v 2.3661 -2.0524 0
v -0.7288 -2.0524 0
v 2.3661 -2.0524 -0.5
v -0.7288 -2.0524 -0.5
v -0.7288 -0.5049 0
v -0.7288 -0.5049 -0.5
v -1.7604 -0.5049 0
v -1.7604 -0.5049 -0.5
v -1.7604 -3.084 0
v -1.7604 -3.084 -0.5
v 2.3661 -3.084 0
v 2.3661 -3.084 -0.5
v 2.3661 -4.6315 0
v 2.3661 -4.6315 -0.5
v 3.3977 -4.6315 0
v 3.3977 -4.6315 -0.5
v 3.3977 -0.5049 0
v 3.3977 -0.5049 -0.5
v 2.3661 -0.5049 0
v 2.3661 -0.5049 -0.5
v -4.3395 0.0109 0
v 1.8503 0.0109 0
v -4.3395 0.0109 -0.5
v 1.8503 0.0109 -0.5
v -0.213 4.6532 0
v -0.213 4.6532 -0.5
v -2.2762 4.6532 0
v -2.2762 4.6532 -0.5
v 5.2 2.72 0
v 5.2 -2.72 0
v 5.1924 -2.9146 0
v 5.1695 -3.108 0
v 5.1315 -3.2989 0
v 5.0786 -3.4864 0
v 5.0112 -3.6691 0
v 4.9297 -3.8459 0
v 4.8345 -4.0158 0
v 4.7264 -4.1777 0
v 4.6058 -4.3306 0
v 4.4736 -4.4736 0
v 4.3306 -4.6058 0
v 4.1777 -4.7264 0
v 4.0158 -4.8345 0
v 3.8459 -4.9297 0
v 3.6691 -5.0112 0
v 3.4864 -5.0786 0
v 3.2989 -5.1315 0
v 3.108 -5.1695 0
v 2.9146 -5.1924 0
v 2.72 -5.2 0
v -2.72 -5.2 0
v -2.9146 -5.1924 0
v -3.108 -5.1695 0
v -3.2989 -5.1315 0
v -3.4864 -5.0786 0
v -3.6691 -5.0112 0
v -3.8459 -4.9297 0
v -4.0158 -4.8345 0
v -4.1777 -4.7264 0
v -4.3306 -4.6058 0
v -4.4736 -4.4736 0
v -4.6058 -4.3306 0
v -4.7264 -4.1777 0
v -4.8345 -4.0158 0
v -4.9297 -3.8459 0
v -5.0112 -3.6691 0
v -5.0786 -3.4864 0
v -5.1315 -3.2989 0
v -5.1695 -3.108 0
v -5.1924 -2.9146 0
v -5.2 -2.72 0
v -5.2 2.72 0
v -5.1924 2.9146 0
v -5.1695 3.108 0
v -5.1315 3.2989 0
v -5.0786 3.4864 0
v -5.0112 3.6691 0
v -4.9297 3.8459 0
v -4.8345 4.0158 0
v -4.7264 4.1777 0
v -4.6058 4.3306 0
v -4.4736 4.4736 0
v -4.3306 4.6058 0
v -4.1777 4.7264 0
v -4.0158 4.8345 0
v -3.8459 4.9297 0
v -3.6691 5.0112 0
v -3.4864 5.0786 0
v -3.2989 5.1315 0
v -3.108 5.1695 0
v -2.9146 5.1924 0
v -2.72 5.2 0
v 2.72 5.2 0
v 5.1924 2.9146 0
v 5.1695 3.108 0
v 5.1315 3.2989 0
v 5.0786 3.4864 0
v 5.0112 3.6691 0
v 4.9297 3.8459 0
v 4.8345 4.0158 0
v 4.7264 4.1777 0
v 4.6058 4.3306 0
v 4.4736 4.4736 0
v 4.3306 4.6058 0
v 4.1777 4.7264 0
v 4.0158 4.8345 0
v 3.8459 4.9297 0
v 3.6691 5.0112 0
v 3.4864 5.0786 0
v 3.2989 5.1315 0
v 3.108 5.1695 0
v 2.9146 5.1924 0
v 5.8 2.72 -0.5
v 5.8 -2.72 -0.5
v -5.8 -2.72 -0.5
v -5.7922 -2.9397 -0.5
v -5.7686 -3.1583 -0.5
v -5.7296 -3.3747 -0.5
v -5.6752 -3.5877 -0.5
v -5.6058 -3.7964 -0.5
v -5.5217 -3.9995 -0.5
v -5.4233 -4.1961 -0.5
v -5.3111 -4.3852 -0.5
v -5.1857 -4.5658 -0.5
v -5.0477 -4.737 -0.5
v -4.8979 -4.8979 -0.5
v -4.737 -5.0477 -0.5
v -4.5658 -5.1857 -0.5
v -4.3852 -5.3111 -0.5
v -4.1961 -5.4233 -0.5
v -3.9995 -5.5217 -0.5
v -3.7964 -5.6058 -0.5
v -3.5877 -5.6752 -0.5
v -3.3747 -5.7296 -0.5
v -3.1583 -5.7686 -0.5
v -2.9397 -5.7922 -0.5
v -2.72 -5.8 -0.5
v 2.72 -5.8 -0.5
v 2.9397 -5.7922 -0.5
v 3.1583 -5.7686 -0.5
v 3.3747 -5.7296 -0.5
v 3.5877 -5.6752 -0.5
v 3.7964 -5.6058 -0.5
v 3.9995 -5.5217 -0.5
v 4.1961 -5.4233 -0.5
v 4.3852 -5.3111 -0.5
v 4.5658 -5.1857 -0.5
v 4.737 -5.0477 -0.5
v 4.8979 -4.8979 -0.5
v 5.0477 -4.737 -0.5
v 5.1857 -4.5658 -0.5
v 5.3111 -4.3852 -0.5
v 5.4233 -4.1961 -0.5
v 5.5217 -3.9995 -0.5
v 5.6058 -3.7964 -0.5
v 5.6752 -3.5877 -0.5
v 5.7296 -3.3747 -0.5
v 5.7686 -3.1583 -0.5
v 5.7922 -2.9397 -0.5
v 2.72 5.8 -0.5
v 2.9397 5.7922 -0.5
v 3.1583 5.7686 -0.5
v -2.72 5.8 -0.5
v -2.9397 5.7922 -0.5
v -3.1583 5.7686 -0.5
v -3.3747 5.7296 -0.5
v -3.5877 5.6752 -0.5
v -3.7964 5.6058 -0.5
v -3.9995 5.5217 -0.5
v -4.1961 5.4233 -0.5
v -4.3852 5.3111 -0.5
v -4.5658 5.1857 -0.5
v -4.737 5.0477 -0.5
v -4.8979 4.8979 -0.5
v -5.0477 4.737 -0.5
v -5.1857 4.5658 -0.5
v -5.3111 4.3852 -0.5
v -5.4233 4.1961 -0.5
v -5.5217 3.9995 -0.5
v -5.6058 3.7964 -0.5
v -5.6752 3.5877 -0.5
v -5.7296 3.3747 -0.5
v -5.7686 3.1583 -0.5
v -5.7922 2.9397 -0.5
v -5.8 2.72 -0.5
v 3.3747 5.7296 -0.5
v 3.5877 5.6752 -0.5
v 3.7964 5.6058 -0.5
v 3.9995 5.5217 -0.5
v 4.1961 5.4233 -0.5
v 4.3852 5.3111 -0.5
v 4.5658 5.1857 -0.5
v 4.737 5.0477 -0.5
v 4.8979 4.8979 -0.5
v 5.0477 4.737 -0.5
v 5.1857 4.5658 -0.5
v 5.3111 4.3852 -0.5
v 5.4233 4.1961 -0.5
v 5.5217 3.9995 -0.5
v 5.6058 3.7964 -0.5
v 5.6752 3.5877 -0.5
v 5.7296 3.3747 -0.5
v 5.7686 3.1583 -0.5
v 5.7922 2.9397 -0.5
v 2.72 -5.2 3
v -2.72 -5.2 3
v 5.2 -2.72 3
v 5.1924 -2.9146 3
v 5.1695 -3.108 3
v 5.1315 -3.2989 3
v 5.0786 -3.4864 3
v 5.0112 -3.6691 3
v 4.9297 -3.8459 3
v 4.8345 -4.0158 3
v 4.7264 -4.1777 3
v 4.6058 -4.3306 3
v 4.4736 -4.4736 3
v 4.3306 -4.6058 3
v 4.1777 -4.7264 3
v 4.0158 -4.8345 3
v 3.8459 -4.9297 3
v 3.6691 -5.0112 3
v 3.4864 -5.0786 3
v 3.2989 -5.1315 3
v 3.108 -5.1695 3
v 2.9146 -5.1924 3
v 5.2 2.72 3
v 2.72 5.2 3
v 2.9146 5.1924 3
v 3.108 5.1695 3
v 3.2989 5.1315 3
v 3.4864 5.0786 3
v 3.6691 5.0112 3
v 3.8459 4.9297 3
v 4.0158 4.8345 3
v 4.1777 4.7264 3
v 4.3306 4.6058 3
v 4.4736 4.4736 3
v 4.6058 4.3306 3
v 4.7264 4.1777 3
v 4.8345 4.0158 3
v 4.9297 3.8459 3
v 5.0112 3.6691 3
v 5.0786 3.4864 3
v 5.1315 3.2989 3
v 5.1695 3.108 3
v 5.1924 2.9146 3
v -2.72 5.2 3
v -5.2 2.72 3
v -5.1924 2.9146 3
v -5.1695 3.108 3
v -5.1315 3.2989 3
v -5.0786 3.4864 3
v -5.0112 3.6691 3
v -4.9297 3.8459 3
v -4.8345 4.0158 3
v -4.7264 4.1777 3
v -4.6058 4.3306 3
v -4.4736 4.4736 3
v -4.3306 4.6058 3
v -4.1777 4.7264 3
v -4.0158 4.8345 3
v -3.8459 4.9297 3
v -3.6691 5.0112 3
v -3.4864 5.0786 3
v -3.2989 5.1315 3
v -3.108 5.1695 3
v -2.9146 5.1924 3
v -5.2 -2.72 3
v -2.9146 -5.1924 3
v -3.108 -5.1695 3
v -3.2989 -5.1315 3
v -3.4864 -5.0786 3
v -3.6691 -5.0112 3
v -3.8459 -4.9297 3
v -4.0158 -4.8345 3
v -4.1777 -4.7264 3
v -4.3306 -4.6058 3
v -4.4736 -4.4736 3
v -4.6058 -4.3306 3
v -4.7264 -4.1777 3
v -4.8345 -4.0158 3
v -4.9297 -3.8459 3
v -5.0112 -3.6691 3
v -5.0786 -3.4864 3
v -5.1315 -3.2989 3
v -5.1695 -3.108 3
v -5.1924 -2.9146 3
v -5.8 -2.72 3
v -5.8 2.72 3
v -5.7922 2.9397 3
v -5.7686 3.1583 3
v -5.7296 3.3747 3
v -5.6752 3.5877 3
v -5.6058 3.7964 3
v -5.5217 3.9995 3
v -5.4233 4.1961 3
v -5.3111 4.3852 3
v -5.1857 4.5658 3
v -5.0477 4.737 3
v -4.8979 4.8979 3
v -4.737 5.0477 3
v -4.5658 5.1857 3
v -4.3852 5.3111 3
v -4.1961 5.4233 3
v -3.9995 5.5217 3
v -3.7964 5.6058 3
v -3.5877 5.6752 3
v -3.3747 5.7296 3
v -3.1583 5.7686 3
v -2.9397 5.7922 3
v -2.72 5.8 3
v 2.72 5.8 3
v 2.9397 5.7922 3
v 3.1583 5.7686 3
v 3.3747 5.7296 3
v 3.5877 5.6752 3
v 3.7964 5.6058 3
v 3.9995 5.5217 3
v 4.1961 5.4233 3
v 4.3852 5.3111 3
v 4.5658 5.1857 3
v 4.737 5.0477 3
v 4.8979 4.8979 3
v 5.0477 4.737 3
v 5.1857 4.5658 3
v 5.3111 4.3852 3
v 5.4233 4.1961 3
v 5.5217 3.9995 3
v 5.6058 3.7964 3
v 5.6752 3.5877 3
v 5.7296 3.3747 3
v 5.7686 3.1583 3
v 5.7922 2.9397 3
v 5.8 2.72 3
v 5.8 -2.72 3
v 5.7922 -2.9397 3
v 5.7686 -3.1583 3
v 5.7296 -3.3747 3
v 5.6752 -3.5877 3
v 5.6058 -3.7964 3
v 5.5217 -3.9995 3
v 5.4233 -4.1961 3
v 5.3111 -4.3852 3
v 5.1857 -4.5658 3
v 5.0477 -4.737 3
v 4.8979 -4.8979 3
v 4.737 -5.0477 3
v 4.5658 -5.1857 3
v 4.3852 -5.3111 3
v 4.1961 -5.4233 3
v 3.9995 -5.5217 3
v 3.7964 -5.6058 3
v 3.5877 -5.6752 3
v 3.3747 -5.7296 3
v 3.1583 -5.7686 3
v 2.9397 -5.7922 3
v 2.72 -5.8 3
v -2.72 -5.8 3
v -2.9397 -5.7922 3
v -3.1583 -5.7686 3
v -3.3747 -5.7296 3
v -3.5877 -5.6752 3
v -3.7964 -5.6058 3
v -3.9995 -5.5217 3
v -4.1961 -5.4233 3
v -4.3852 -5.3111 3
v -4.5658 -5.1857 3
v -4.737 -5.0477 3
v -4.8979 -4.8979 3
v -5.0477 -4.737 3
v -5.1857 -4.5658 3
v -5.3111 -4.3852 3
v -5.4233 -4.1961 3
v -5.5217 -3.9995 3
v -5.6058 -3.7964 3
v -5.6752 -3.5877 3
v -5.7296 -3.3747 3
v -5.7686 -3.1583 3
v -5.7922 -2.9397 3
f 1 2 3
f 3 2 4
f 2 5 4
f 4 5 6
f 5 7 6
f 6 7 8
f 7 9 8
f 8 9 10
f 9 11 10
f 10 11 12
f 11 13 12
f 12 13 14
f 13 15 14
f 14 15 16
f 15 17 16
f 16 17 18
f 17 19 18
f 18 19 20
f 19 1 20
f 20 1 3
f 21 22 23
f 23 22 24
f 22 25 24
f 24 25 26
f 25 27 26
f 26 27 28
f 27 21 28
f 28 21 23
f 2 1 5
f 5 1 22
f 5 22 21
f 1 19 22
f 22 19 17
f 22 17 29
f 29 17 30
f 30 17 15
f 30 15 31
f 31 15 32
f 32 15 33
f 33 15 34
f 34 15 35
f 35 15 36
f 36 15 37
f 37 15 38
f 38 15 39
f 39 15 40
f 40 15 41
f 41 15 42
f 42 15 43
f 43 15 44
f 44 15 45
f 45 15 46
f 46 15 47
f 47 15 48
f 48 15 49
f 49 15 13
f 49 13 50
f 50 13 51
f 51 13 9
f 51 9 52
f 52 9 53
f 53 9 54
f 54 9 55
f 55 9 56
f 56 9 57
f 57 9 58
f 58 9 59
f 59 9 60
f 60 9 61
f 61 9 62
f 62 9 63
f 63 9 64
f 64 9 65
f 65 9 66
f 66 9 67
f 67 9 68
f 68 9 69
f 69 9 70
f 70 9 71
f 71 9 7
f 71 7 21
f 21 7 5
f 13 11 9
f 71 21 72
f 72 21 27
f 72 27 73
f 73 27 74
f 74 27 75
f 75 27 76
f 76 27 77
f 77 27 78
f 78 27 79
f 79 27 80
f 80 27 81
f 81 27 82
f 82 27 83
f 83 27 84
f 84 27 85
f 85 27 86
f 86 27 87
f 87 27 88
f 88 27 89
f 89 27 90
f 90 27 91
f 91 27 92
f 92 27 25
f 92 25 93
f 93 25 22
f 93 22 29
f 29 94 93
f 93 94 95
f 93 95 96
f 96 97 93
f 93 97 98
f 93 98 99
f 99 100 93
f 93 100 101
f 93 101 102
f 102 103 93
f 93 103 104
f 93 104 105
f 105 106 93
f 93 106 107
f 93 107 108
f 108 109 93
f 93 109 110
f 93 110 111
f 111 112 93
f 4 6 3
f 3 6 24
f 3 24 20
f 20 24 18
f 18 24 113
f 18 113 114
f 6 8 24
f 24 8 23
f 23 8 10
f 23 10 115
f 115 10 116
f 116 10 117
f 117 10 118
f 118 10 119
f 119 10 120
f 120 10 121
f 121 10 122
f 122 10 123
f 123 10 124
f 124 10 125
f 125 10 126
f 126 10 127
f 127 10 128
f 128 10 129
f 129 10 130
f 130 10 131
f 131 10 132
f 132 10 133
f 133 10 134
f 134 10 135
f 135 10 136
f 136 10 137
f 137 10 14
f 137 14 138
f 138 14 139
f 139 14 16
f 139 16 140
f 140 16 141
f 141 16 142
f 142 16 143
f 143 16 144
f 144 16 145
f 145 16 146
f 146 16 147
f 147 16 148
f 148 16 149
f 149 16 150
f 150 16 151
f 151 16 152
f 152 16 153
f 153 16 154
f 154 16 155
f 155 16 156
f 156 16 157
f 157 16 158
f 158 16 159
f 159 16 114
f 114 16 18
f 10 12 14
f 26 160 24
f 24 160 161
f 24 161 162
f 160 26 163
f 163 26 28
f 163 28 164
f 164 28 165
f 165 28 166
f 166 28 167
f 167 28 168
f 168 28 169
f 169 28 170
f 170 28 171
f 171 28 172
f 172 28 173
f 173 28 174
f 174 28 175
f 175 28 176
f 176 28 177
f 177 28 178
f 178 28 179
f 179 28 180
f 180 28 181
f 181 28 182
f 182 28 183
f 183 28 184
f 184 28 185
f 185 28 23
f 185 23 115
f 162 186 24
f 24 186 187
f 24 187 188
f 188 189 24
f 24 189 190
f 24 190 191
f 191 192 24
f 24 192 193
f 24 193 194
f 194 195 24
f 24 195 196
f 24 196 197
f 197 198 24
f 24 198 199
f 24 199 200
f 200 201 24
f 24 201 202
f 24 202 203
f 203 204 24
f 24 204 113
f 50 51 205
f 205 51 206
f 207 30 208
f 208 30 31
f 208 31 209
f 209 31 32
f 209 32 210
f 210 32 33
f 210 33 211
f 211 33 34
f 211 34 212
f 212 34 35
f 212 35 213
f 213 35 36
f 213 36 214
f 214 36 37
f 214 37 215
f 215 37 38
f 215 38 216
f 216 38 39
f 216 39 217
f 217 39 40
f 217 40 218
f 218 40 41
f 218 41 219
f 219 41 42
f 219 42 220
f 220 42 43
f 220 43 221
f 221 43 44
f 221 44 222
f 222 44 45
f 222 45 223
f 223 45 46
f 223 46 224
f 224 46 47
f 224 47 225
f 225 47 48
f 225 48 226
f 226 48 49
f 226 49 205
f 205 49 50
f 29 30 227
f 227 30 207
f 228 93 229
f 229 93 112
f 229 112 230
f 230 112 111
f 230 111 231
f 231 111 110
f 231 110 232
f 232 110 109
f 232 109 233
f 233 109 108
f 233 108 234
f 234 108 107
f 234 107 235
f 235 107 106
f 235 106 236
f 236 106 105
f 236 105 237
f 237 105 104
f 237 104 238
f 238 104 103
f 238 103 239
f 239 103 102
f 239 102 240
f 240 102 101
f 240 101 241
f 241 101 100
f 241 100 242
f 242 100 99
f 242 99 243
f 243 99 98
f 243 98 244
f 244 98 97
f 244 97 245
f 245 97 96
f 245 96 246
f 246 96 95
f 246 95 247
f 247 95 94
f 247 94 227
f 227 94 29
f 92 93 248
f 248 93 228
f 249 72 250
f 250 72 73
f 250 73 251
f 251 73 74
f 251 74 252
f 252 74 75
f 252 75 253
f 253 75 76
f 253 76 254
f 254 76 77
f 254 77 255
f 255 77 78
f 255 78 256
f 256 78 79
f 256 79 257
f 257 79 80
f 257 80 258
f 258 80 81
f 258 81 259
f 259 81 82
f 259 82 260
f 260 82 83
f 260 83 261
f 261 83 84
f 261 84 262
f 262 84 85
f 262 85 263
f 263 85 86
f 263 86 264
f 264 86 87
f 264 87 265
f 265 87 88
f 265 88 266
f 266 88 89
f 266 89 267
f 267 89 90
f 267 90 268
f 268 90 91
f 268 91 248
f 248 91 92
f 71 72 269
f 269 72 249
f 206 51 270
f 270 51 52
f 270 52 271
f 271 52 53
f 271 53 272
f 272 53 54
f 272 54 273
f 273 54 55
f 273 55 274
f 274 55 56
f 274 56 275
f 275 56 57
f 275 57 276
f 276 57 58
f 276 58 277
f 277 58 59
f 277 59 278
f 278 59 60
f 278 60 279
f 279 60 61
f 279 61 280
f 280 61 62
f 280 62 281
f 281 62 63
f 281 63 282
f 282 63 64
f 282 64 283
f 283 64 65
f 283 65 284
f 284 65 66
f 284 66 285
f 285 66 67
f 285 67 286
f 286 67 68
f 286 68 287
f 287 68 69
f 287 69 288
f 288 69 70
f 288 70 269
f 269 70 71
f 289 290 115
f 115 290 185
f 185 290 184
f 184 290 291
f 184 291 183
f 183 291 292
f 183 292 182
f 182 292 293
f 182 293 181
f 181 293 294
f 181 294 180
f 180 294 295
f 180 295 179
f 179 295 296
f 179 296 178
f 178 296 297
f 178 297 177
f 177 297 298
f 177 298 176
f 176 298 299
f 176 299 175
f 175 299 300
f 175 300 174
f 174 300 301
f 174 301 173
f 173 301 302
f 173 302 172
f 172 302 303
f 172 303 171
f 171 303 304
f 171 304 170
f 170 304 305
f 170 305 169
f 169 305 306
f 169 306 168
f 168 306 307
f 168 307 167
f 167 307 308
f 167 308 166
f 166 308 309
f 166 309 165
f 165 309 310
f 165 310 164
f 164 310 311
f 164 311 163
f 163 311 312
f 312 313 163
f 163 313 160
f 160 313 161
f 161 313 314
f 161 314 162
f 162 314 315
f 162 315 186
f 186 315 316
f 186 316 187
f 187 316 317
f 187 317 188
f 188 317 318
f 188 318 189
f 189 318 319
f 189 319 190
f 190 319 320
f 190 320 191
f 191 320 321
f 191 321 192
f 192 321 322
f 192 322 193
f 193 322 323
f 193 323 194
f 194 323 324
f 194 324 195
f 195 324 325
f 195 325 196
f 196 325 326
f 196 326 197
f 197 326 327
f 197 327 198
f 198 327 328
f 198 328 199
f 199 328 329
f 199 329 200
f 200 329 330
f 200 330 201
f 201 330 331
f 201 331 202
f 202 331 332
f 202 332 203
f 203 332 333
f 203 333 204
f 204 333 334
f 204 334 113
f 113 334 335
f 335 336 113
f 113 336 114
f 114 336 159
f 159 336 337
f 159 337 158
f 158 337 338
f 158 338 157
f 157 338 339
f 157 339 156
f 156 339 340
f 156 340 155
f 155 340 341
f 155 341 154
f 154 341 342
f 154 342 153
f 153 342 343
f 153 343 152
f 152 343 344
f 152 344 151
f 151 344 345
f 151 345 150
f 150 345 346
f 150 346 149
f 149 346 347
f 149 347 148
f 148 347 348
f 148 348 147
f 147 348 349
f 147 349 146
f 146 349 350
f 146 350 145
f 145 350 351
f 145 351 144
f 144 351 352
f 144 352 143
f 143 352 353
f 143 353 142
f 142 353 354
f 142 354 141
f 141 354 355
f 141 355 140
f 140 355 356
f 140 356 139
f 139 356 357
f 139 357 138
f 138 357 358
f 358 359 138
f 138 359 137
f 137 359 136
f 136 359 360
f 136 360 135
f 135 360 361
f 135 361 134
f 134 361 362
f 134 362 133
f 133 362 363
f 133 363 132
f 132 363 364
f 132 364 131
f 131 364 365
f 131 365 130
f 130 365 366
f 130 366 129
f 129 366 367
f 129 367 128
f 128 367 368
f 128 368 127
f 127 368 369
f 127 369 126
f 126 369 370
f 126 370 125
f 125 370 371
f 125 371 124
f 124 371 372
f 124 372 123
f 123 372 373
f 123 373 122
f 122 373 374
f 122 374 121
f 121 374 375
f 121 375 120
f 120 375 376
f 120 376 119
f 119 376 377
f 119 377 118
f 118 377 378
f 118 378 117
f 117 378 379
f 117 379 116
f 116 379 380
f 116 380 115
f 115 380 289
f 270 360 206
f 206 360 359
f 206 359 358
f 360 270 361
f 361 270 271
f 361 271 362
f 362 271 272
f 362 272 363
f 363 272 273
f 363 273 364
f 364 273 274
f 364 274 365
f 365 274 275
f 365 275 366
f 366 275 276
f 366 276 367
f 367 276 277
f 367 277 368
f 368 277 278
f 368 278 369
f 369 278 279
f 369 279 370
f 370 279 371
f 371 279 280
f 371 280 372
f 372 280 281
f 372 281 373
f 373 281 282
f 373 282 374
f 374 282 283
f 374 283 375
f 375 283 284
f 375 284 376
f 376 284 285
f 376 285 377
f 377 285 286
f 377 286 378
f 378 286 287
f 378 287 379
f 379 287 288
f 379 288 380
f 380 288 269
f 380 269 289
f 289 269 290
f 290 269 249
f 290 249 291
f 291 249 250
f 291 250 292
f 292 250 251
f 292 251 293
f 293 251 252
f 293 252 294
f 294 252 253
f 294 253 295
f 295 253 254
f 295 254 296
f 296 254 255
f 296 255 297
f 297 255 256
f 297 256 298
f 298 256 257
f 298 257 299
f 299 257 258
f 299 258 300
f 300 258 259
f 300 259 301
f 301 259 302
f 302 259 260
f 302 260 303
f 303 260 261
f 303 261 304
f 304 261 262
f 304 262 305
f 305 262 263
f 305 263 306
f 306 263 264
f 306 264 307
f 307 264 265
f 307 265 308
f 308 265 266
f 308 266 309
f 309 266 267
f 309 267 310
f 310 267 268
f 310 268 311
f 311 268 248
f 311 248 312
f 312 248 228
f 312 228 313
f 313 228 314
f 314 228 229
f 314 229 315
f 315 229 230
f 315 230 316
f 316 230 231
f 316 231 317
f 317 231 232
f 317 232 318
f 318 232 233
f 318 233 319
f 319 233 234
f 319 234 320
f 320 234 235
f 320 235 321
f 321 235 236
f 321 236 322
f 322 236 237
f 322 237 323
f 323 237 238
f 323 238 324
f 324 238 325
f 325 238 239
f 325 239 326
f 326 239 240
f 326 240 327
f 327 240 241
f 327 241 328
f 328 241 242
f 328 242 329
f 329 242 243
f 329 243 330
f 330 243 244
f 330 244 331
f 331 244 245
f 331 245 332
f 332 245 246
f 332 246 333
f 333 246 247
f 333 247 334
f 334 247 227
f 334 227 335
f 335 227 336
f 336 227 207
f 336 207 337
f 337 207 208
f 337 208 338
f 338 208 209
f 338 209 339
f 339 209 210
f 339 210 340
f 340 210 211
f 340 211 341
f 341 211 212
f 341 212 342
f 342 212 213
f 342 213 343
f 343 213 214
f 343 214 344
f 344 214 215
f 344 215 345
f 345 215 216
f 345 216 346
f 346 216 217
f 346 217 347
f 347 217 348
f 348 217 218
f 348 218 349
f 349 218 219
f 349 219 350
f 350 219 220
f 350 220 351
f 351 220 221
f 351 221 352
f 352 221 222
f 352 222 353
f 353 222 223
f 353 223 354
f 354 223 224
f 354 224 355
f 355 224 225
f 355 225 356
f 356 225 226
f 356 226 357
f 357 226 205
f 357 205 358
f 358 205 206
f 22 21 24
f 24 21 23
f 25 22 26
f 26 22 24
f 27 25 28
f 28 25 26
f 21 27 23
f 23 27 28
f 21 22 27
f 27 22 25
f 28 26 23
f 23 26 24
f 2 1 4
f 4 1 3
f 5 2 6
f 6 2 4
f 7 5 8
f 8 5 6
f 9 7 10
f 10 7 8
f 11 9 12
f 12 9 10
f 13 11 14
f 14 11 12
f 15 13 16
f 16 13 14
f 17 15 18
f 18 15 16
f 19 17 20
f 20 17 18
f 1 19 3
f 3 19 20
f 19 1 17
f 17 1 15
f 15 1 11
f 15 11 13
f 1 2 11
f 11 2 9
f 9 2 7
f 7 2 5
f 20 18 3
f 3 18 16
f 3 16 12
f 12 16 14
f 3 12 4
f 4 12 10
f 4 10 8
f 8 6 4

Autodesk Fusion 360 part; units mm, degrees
sketch "Sketch1" plane through (0, 0, 0) normal (0, 0, 1) x (1, 0, 0)
  line L0 (2.72, 5) -> (-2.72, 5)
  line L1 (-5, 2.72) -> (-5, -2.72)
  line L2 (-2.72, -5) -> (2.72, -5)
  line L3 (5, -2.72) -> (5, 2.72)
  line L4 (5, 5) -> (-5, -5) construction
  line L5 (-5, 5) -> (5, -5) construction
  arc A0 (5, 2.72) -> (2.72, 5) centre (2.72, 2.72) ccw
  arc A1 (2.72, -5) -> (5, -2.72) centre (2.72, -2.72) ccw
  arc A2 (-5, -2.72) -> (-2.72, -5) centre (-2.72, -2.72) ccw
  arc A3 (-2.72, 5) -> (-5, 2.72) centre (-2.72, 2.72) ccw
  line L6 (-2.72, -5.2) -> (2.72, -5.2)
  arc A4 (2.72, -5.2) -> (5.2, -2.72) centre (2.72, -2.72) ccw
  line L7 (5.2, -2.72) -> (5.2, 2.72)
  arc A5 (5.2, 2.72) -> (2.72, 5.2) centre (2.72, 2.72) ccw
  line L8 (2.72, 5.2) -> (-2.72, 5.2)
  arc A6 (-2.72, 5.2) -> (-5.2, 2.72) centre (-2.72, 2.72) ccw
  line L9 (-5.2, 2.72) -> (-5.2, -2.72)
  arc A7 (-5.2, -2.72) -> (-2.72, -5.2) centre (-2.72, -2.72) ccw
  line L10 (-2.72, -5.8) -> (2.72, -5.8)
  arc A8 (2.72, -5.8) -> (5.8, -2.72) centre (2.72, -2.72) ccw
  line L11 (5.8, -2.72) -> (5.8, 2.72)
  arc A9 (5.8, 2.72) -> (2.72, 5.8) centre (2.72, 2.72) ccw
  line L12 (2.72, 5.8) -> (-2.72, 5.8)
  arc A10 (-2.72, 5.8) -> (-5.8, 2.72) centre (-2.72, 2.72) ccw
  line L13 (-5.8, 2.72) -> (-5.8, -2.72)
  arc A11 (-5.8, -2.72) -> (-2.72, -5.8) centre (-2.72, -2.72) ccw
  dimension "d1" = 10
  dimension "d2" = 10
  dimension "d3" = 2.28
  dimension "d4" = 0.2
  dimension "d5" = 0.8
extrude "Extrude1" add sketch "Sketch1" along normal blind 3 contours L10 A8 L11 A9 L12 A10 L13 A11 makes body 1
extrude "Extrude2" add sketch "Sketch1" against normal blind 0.5 contours L0 L1 L2 L3 A0 A1 A2 A3 | L6 A4 L7 A5 L8 A6 L9 A7 | L10 A8 L11 A9 L12 A10 L13 A11 bodies 1
sketch "Sketch3" plane through (0, 0, 0) normal (0, 0, 1) x (1, 0, 0)
  line L0 (-2.72, -5.2) -> (2.72, -5.2)
  arc A0 (2.72, -5.2) -> (5.2, -2.72) centre (2.72, -2.72) ccw
  line L1 (5.2, -2.72) -> (5.2, 2.72)
  arc A1 (5.2, 2.72) -> (2.72, 5.2) centre (2.72, 2.72) ccw
  line L2 (2.72, 5.2) -> (-2.72, 5.2)
  arc A2 (-2.72, 5.2) -> (-5.2, 2.72) centre (-2.72, 2.72) ccw
  line L3 (-5.2, 2.72) -> (-5.2, -2.72)
  arc A3 (-5.2, -2.72) -> (-2.72, -5.2) centre (-2.72, -2.72) ccw
  line L4 (-0.213, 4.6532) -> (1.8503, 0.0109)
  line L5 (1.8503, 0.0109) -> (-4.3395, 0.0109)
  line L6 (-4.3395, 0.0109) -> (-2.2762, 4.6532)
  line L7 (-2.2762, 4.6532) -> (-0.213, 4.6532)
  line L8 (3.3977, -0.5049) -> (3.3977, -4.6315)
  line L9 (3.3977, -4.6315) -> (2.3661, -4.6315)
  line L10 (2.3661, -4.6315) -> (2.3661, -3.084)
  line L11 (2.3661, -3.084) -> (-1.7604, -3.084)
  line L12 (-1.7604, -3.084) -> (-1.7604, -0.5049)
  line L13 (-1.7604, -0.5049) -> (-0.7288, -0.5049)
  line L14 (-0.7288, -0.5049) -> (-0.7288, -2.0524)
  line L15 (-0.7288, -2.0524) -> (2.3661, -2.0524)
  line L16 (2.3661, -2.0524) -> (2.3661, -0.5049)
  line L17 (2.3661, -0.5049) -> (3.3977, -0.5049)
extrude "Extrude3" cut sketch "Sketch3" against normal blind 0.5 contours L4 L5 L6 L7 | L8 L9 L10 L11 L12 L13 L14 L15 L16 L17 bodies 1
extrude "Extrude4" add sketch "Sketch3" against normal blind 0.5 separate body contours L4 L5 L6 L7 | L8 L9 L10 L11 L12 L13 L14 L15 L16 L17 makes body 2 at (-0.9007, 1.5583, 0) makes body 3 at (3.0539, -2.3963, 0)
sketch "Sketch2" plane through (0, 0, 0) normal (0, 0, 1) x (1, 0, 0)
  line L0 (-2.72, -5.2) -> (2.72, -5.2)
  arc A0 (2.72, -5.2) -> (5.2, -2.72) centre (2.72, -2.72) ccw
  line L1 (5.2, -2.72) -> (5.2, 2.72)
  arc A1 (5.2, 2.72) -> (2.72, 5.2) centre (2.72, 2.72) ccw
  line L2 (2.72, 5.2) -> (-2.72, 5.2)
  arc A2 (-2.72, 5.2) -> (-5.2, 2.72) centre (-2.72, 2.72) ccw
  line L3 (-5.2, 2.72) -> (-5.2, -2.72)
  arc A3 (-5.2, -2.72) -> (-2.72, -5.2) centre (-2.72, -2.72) ccw
  line L4 (-0.0982, 4.7234) -> (-2.1626, 0.0785)
  line L5 (-2.1626, 0.0785) -> (4.0305, 0.0785)
  line L6 (4.0305, 0.0785) -> (1.9662, 4.7234)
  line L7 (1.9662, 4.7234) -> (-0.0982, 4.7234)
  line L8 (-3.7109, -0.4376) -> (-3.7109, -4.5664)
  line L9 (-3.7109, -4.5664) -> (-2.6787, -4.5664)
  line L10 (-2.6787, -4.5664) -> (-2.6787, -3.0181)
  line L11 (-2.6787, -3.0181) -> (1.4501, -3.0181)
  line L12 (1.4501, -3.0181) -> (1.4501, -0.4376)
  line L13 (1.4501, -0.4376) -> (0.4179, -0.4376)
  line L14 (0.4179, -0.4376) -> (0.4179, -1.9859)
  line L15 (0.4179, -1.9859) -> (-2.6787, -1.9859)
  line L16 (-2.6787, -1.9859) -> (-2.6787, -0.4376)
  line L17 (-2.6787, -0.4376) -> (-3.7109, -0.4376)
